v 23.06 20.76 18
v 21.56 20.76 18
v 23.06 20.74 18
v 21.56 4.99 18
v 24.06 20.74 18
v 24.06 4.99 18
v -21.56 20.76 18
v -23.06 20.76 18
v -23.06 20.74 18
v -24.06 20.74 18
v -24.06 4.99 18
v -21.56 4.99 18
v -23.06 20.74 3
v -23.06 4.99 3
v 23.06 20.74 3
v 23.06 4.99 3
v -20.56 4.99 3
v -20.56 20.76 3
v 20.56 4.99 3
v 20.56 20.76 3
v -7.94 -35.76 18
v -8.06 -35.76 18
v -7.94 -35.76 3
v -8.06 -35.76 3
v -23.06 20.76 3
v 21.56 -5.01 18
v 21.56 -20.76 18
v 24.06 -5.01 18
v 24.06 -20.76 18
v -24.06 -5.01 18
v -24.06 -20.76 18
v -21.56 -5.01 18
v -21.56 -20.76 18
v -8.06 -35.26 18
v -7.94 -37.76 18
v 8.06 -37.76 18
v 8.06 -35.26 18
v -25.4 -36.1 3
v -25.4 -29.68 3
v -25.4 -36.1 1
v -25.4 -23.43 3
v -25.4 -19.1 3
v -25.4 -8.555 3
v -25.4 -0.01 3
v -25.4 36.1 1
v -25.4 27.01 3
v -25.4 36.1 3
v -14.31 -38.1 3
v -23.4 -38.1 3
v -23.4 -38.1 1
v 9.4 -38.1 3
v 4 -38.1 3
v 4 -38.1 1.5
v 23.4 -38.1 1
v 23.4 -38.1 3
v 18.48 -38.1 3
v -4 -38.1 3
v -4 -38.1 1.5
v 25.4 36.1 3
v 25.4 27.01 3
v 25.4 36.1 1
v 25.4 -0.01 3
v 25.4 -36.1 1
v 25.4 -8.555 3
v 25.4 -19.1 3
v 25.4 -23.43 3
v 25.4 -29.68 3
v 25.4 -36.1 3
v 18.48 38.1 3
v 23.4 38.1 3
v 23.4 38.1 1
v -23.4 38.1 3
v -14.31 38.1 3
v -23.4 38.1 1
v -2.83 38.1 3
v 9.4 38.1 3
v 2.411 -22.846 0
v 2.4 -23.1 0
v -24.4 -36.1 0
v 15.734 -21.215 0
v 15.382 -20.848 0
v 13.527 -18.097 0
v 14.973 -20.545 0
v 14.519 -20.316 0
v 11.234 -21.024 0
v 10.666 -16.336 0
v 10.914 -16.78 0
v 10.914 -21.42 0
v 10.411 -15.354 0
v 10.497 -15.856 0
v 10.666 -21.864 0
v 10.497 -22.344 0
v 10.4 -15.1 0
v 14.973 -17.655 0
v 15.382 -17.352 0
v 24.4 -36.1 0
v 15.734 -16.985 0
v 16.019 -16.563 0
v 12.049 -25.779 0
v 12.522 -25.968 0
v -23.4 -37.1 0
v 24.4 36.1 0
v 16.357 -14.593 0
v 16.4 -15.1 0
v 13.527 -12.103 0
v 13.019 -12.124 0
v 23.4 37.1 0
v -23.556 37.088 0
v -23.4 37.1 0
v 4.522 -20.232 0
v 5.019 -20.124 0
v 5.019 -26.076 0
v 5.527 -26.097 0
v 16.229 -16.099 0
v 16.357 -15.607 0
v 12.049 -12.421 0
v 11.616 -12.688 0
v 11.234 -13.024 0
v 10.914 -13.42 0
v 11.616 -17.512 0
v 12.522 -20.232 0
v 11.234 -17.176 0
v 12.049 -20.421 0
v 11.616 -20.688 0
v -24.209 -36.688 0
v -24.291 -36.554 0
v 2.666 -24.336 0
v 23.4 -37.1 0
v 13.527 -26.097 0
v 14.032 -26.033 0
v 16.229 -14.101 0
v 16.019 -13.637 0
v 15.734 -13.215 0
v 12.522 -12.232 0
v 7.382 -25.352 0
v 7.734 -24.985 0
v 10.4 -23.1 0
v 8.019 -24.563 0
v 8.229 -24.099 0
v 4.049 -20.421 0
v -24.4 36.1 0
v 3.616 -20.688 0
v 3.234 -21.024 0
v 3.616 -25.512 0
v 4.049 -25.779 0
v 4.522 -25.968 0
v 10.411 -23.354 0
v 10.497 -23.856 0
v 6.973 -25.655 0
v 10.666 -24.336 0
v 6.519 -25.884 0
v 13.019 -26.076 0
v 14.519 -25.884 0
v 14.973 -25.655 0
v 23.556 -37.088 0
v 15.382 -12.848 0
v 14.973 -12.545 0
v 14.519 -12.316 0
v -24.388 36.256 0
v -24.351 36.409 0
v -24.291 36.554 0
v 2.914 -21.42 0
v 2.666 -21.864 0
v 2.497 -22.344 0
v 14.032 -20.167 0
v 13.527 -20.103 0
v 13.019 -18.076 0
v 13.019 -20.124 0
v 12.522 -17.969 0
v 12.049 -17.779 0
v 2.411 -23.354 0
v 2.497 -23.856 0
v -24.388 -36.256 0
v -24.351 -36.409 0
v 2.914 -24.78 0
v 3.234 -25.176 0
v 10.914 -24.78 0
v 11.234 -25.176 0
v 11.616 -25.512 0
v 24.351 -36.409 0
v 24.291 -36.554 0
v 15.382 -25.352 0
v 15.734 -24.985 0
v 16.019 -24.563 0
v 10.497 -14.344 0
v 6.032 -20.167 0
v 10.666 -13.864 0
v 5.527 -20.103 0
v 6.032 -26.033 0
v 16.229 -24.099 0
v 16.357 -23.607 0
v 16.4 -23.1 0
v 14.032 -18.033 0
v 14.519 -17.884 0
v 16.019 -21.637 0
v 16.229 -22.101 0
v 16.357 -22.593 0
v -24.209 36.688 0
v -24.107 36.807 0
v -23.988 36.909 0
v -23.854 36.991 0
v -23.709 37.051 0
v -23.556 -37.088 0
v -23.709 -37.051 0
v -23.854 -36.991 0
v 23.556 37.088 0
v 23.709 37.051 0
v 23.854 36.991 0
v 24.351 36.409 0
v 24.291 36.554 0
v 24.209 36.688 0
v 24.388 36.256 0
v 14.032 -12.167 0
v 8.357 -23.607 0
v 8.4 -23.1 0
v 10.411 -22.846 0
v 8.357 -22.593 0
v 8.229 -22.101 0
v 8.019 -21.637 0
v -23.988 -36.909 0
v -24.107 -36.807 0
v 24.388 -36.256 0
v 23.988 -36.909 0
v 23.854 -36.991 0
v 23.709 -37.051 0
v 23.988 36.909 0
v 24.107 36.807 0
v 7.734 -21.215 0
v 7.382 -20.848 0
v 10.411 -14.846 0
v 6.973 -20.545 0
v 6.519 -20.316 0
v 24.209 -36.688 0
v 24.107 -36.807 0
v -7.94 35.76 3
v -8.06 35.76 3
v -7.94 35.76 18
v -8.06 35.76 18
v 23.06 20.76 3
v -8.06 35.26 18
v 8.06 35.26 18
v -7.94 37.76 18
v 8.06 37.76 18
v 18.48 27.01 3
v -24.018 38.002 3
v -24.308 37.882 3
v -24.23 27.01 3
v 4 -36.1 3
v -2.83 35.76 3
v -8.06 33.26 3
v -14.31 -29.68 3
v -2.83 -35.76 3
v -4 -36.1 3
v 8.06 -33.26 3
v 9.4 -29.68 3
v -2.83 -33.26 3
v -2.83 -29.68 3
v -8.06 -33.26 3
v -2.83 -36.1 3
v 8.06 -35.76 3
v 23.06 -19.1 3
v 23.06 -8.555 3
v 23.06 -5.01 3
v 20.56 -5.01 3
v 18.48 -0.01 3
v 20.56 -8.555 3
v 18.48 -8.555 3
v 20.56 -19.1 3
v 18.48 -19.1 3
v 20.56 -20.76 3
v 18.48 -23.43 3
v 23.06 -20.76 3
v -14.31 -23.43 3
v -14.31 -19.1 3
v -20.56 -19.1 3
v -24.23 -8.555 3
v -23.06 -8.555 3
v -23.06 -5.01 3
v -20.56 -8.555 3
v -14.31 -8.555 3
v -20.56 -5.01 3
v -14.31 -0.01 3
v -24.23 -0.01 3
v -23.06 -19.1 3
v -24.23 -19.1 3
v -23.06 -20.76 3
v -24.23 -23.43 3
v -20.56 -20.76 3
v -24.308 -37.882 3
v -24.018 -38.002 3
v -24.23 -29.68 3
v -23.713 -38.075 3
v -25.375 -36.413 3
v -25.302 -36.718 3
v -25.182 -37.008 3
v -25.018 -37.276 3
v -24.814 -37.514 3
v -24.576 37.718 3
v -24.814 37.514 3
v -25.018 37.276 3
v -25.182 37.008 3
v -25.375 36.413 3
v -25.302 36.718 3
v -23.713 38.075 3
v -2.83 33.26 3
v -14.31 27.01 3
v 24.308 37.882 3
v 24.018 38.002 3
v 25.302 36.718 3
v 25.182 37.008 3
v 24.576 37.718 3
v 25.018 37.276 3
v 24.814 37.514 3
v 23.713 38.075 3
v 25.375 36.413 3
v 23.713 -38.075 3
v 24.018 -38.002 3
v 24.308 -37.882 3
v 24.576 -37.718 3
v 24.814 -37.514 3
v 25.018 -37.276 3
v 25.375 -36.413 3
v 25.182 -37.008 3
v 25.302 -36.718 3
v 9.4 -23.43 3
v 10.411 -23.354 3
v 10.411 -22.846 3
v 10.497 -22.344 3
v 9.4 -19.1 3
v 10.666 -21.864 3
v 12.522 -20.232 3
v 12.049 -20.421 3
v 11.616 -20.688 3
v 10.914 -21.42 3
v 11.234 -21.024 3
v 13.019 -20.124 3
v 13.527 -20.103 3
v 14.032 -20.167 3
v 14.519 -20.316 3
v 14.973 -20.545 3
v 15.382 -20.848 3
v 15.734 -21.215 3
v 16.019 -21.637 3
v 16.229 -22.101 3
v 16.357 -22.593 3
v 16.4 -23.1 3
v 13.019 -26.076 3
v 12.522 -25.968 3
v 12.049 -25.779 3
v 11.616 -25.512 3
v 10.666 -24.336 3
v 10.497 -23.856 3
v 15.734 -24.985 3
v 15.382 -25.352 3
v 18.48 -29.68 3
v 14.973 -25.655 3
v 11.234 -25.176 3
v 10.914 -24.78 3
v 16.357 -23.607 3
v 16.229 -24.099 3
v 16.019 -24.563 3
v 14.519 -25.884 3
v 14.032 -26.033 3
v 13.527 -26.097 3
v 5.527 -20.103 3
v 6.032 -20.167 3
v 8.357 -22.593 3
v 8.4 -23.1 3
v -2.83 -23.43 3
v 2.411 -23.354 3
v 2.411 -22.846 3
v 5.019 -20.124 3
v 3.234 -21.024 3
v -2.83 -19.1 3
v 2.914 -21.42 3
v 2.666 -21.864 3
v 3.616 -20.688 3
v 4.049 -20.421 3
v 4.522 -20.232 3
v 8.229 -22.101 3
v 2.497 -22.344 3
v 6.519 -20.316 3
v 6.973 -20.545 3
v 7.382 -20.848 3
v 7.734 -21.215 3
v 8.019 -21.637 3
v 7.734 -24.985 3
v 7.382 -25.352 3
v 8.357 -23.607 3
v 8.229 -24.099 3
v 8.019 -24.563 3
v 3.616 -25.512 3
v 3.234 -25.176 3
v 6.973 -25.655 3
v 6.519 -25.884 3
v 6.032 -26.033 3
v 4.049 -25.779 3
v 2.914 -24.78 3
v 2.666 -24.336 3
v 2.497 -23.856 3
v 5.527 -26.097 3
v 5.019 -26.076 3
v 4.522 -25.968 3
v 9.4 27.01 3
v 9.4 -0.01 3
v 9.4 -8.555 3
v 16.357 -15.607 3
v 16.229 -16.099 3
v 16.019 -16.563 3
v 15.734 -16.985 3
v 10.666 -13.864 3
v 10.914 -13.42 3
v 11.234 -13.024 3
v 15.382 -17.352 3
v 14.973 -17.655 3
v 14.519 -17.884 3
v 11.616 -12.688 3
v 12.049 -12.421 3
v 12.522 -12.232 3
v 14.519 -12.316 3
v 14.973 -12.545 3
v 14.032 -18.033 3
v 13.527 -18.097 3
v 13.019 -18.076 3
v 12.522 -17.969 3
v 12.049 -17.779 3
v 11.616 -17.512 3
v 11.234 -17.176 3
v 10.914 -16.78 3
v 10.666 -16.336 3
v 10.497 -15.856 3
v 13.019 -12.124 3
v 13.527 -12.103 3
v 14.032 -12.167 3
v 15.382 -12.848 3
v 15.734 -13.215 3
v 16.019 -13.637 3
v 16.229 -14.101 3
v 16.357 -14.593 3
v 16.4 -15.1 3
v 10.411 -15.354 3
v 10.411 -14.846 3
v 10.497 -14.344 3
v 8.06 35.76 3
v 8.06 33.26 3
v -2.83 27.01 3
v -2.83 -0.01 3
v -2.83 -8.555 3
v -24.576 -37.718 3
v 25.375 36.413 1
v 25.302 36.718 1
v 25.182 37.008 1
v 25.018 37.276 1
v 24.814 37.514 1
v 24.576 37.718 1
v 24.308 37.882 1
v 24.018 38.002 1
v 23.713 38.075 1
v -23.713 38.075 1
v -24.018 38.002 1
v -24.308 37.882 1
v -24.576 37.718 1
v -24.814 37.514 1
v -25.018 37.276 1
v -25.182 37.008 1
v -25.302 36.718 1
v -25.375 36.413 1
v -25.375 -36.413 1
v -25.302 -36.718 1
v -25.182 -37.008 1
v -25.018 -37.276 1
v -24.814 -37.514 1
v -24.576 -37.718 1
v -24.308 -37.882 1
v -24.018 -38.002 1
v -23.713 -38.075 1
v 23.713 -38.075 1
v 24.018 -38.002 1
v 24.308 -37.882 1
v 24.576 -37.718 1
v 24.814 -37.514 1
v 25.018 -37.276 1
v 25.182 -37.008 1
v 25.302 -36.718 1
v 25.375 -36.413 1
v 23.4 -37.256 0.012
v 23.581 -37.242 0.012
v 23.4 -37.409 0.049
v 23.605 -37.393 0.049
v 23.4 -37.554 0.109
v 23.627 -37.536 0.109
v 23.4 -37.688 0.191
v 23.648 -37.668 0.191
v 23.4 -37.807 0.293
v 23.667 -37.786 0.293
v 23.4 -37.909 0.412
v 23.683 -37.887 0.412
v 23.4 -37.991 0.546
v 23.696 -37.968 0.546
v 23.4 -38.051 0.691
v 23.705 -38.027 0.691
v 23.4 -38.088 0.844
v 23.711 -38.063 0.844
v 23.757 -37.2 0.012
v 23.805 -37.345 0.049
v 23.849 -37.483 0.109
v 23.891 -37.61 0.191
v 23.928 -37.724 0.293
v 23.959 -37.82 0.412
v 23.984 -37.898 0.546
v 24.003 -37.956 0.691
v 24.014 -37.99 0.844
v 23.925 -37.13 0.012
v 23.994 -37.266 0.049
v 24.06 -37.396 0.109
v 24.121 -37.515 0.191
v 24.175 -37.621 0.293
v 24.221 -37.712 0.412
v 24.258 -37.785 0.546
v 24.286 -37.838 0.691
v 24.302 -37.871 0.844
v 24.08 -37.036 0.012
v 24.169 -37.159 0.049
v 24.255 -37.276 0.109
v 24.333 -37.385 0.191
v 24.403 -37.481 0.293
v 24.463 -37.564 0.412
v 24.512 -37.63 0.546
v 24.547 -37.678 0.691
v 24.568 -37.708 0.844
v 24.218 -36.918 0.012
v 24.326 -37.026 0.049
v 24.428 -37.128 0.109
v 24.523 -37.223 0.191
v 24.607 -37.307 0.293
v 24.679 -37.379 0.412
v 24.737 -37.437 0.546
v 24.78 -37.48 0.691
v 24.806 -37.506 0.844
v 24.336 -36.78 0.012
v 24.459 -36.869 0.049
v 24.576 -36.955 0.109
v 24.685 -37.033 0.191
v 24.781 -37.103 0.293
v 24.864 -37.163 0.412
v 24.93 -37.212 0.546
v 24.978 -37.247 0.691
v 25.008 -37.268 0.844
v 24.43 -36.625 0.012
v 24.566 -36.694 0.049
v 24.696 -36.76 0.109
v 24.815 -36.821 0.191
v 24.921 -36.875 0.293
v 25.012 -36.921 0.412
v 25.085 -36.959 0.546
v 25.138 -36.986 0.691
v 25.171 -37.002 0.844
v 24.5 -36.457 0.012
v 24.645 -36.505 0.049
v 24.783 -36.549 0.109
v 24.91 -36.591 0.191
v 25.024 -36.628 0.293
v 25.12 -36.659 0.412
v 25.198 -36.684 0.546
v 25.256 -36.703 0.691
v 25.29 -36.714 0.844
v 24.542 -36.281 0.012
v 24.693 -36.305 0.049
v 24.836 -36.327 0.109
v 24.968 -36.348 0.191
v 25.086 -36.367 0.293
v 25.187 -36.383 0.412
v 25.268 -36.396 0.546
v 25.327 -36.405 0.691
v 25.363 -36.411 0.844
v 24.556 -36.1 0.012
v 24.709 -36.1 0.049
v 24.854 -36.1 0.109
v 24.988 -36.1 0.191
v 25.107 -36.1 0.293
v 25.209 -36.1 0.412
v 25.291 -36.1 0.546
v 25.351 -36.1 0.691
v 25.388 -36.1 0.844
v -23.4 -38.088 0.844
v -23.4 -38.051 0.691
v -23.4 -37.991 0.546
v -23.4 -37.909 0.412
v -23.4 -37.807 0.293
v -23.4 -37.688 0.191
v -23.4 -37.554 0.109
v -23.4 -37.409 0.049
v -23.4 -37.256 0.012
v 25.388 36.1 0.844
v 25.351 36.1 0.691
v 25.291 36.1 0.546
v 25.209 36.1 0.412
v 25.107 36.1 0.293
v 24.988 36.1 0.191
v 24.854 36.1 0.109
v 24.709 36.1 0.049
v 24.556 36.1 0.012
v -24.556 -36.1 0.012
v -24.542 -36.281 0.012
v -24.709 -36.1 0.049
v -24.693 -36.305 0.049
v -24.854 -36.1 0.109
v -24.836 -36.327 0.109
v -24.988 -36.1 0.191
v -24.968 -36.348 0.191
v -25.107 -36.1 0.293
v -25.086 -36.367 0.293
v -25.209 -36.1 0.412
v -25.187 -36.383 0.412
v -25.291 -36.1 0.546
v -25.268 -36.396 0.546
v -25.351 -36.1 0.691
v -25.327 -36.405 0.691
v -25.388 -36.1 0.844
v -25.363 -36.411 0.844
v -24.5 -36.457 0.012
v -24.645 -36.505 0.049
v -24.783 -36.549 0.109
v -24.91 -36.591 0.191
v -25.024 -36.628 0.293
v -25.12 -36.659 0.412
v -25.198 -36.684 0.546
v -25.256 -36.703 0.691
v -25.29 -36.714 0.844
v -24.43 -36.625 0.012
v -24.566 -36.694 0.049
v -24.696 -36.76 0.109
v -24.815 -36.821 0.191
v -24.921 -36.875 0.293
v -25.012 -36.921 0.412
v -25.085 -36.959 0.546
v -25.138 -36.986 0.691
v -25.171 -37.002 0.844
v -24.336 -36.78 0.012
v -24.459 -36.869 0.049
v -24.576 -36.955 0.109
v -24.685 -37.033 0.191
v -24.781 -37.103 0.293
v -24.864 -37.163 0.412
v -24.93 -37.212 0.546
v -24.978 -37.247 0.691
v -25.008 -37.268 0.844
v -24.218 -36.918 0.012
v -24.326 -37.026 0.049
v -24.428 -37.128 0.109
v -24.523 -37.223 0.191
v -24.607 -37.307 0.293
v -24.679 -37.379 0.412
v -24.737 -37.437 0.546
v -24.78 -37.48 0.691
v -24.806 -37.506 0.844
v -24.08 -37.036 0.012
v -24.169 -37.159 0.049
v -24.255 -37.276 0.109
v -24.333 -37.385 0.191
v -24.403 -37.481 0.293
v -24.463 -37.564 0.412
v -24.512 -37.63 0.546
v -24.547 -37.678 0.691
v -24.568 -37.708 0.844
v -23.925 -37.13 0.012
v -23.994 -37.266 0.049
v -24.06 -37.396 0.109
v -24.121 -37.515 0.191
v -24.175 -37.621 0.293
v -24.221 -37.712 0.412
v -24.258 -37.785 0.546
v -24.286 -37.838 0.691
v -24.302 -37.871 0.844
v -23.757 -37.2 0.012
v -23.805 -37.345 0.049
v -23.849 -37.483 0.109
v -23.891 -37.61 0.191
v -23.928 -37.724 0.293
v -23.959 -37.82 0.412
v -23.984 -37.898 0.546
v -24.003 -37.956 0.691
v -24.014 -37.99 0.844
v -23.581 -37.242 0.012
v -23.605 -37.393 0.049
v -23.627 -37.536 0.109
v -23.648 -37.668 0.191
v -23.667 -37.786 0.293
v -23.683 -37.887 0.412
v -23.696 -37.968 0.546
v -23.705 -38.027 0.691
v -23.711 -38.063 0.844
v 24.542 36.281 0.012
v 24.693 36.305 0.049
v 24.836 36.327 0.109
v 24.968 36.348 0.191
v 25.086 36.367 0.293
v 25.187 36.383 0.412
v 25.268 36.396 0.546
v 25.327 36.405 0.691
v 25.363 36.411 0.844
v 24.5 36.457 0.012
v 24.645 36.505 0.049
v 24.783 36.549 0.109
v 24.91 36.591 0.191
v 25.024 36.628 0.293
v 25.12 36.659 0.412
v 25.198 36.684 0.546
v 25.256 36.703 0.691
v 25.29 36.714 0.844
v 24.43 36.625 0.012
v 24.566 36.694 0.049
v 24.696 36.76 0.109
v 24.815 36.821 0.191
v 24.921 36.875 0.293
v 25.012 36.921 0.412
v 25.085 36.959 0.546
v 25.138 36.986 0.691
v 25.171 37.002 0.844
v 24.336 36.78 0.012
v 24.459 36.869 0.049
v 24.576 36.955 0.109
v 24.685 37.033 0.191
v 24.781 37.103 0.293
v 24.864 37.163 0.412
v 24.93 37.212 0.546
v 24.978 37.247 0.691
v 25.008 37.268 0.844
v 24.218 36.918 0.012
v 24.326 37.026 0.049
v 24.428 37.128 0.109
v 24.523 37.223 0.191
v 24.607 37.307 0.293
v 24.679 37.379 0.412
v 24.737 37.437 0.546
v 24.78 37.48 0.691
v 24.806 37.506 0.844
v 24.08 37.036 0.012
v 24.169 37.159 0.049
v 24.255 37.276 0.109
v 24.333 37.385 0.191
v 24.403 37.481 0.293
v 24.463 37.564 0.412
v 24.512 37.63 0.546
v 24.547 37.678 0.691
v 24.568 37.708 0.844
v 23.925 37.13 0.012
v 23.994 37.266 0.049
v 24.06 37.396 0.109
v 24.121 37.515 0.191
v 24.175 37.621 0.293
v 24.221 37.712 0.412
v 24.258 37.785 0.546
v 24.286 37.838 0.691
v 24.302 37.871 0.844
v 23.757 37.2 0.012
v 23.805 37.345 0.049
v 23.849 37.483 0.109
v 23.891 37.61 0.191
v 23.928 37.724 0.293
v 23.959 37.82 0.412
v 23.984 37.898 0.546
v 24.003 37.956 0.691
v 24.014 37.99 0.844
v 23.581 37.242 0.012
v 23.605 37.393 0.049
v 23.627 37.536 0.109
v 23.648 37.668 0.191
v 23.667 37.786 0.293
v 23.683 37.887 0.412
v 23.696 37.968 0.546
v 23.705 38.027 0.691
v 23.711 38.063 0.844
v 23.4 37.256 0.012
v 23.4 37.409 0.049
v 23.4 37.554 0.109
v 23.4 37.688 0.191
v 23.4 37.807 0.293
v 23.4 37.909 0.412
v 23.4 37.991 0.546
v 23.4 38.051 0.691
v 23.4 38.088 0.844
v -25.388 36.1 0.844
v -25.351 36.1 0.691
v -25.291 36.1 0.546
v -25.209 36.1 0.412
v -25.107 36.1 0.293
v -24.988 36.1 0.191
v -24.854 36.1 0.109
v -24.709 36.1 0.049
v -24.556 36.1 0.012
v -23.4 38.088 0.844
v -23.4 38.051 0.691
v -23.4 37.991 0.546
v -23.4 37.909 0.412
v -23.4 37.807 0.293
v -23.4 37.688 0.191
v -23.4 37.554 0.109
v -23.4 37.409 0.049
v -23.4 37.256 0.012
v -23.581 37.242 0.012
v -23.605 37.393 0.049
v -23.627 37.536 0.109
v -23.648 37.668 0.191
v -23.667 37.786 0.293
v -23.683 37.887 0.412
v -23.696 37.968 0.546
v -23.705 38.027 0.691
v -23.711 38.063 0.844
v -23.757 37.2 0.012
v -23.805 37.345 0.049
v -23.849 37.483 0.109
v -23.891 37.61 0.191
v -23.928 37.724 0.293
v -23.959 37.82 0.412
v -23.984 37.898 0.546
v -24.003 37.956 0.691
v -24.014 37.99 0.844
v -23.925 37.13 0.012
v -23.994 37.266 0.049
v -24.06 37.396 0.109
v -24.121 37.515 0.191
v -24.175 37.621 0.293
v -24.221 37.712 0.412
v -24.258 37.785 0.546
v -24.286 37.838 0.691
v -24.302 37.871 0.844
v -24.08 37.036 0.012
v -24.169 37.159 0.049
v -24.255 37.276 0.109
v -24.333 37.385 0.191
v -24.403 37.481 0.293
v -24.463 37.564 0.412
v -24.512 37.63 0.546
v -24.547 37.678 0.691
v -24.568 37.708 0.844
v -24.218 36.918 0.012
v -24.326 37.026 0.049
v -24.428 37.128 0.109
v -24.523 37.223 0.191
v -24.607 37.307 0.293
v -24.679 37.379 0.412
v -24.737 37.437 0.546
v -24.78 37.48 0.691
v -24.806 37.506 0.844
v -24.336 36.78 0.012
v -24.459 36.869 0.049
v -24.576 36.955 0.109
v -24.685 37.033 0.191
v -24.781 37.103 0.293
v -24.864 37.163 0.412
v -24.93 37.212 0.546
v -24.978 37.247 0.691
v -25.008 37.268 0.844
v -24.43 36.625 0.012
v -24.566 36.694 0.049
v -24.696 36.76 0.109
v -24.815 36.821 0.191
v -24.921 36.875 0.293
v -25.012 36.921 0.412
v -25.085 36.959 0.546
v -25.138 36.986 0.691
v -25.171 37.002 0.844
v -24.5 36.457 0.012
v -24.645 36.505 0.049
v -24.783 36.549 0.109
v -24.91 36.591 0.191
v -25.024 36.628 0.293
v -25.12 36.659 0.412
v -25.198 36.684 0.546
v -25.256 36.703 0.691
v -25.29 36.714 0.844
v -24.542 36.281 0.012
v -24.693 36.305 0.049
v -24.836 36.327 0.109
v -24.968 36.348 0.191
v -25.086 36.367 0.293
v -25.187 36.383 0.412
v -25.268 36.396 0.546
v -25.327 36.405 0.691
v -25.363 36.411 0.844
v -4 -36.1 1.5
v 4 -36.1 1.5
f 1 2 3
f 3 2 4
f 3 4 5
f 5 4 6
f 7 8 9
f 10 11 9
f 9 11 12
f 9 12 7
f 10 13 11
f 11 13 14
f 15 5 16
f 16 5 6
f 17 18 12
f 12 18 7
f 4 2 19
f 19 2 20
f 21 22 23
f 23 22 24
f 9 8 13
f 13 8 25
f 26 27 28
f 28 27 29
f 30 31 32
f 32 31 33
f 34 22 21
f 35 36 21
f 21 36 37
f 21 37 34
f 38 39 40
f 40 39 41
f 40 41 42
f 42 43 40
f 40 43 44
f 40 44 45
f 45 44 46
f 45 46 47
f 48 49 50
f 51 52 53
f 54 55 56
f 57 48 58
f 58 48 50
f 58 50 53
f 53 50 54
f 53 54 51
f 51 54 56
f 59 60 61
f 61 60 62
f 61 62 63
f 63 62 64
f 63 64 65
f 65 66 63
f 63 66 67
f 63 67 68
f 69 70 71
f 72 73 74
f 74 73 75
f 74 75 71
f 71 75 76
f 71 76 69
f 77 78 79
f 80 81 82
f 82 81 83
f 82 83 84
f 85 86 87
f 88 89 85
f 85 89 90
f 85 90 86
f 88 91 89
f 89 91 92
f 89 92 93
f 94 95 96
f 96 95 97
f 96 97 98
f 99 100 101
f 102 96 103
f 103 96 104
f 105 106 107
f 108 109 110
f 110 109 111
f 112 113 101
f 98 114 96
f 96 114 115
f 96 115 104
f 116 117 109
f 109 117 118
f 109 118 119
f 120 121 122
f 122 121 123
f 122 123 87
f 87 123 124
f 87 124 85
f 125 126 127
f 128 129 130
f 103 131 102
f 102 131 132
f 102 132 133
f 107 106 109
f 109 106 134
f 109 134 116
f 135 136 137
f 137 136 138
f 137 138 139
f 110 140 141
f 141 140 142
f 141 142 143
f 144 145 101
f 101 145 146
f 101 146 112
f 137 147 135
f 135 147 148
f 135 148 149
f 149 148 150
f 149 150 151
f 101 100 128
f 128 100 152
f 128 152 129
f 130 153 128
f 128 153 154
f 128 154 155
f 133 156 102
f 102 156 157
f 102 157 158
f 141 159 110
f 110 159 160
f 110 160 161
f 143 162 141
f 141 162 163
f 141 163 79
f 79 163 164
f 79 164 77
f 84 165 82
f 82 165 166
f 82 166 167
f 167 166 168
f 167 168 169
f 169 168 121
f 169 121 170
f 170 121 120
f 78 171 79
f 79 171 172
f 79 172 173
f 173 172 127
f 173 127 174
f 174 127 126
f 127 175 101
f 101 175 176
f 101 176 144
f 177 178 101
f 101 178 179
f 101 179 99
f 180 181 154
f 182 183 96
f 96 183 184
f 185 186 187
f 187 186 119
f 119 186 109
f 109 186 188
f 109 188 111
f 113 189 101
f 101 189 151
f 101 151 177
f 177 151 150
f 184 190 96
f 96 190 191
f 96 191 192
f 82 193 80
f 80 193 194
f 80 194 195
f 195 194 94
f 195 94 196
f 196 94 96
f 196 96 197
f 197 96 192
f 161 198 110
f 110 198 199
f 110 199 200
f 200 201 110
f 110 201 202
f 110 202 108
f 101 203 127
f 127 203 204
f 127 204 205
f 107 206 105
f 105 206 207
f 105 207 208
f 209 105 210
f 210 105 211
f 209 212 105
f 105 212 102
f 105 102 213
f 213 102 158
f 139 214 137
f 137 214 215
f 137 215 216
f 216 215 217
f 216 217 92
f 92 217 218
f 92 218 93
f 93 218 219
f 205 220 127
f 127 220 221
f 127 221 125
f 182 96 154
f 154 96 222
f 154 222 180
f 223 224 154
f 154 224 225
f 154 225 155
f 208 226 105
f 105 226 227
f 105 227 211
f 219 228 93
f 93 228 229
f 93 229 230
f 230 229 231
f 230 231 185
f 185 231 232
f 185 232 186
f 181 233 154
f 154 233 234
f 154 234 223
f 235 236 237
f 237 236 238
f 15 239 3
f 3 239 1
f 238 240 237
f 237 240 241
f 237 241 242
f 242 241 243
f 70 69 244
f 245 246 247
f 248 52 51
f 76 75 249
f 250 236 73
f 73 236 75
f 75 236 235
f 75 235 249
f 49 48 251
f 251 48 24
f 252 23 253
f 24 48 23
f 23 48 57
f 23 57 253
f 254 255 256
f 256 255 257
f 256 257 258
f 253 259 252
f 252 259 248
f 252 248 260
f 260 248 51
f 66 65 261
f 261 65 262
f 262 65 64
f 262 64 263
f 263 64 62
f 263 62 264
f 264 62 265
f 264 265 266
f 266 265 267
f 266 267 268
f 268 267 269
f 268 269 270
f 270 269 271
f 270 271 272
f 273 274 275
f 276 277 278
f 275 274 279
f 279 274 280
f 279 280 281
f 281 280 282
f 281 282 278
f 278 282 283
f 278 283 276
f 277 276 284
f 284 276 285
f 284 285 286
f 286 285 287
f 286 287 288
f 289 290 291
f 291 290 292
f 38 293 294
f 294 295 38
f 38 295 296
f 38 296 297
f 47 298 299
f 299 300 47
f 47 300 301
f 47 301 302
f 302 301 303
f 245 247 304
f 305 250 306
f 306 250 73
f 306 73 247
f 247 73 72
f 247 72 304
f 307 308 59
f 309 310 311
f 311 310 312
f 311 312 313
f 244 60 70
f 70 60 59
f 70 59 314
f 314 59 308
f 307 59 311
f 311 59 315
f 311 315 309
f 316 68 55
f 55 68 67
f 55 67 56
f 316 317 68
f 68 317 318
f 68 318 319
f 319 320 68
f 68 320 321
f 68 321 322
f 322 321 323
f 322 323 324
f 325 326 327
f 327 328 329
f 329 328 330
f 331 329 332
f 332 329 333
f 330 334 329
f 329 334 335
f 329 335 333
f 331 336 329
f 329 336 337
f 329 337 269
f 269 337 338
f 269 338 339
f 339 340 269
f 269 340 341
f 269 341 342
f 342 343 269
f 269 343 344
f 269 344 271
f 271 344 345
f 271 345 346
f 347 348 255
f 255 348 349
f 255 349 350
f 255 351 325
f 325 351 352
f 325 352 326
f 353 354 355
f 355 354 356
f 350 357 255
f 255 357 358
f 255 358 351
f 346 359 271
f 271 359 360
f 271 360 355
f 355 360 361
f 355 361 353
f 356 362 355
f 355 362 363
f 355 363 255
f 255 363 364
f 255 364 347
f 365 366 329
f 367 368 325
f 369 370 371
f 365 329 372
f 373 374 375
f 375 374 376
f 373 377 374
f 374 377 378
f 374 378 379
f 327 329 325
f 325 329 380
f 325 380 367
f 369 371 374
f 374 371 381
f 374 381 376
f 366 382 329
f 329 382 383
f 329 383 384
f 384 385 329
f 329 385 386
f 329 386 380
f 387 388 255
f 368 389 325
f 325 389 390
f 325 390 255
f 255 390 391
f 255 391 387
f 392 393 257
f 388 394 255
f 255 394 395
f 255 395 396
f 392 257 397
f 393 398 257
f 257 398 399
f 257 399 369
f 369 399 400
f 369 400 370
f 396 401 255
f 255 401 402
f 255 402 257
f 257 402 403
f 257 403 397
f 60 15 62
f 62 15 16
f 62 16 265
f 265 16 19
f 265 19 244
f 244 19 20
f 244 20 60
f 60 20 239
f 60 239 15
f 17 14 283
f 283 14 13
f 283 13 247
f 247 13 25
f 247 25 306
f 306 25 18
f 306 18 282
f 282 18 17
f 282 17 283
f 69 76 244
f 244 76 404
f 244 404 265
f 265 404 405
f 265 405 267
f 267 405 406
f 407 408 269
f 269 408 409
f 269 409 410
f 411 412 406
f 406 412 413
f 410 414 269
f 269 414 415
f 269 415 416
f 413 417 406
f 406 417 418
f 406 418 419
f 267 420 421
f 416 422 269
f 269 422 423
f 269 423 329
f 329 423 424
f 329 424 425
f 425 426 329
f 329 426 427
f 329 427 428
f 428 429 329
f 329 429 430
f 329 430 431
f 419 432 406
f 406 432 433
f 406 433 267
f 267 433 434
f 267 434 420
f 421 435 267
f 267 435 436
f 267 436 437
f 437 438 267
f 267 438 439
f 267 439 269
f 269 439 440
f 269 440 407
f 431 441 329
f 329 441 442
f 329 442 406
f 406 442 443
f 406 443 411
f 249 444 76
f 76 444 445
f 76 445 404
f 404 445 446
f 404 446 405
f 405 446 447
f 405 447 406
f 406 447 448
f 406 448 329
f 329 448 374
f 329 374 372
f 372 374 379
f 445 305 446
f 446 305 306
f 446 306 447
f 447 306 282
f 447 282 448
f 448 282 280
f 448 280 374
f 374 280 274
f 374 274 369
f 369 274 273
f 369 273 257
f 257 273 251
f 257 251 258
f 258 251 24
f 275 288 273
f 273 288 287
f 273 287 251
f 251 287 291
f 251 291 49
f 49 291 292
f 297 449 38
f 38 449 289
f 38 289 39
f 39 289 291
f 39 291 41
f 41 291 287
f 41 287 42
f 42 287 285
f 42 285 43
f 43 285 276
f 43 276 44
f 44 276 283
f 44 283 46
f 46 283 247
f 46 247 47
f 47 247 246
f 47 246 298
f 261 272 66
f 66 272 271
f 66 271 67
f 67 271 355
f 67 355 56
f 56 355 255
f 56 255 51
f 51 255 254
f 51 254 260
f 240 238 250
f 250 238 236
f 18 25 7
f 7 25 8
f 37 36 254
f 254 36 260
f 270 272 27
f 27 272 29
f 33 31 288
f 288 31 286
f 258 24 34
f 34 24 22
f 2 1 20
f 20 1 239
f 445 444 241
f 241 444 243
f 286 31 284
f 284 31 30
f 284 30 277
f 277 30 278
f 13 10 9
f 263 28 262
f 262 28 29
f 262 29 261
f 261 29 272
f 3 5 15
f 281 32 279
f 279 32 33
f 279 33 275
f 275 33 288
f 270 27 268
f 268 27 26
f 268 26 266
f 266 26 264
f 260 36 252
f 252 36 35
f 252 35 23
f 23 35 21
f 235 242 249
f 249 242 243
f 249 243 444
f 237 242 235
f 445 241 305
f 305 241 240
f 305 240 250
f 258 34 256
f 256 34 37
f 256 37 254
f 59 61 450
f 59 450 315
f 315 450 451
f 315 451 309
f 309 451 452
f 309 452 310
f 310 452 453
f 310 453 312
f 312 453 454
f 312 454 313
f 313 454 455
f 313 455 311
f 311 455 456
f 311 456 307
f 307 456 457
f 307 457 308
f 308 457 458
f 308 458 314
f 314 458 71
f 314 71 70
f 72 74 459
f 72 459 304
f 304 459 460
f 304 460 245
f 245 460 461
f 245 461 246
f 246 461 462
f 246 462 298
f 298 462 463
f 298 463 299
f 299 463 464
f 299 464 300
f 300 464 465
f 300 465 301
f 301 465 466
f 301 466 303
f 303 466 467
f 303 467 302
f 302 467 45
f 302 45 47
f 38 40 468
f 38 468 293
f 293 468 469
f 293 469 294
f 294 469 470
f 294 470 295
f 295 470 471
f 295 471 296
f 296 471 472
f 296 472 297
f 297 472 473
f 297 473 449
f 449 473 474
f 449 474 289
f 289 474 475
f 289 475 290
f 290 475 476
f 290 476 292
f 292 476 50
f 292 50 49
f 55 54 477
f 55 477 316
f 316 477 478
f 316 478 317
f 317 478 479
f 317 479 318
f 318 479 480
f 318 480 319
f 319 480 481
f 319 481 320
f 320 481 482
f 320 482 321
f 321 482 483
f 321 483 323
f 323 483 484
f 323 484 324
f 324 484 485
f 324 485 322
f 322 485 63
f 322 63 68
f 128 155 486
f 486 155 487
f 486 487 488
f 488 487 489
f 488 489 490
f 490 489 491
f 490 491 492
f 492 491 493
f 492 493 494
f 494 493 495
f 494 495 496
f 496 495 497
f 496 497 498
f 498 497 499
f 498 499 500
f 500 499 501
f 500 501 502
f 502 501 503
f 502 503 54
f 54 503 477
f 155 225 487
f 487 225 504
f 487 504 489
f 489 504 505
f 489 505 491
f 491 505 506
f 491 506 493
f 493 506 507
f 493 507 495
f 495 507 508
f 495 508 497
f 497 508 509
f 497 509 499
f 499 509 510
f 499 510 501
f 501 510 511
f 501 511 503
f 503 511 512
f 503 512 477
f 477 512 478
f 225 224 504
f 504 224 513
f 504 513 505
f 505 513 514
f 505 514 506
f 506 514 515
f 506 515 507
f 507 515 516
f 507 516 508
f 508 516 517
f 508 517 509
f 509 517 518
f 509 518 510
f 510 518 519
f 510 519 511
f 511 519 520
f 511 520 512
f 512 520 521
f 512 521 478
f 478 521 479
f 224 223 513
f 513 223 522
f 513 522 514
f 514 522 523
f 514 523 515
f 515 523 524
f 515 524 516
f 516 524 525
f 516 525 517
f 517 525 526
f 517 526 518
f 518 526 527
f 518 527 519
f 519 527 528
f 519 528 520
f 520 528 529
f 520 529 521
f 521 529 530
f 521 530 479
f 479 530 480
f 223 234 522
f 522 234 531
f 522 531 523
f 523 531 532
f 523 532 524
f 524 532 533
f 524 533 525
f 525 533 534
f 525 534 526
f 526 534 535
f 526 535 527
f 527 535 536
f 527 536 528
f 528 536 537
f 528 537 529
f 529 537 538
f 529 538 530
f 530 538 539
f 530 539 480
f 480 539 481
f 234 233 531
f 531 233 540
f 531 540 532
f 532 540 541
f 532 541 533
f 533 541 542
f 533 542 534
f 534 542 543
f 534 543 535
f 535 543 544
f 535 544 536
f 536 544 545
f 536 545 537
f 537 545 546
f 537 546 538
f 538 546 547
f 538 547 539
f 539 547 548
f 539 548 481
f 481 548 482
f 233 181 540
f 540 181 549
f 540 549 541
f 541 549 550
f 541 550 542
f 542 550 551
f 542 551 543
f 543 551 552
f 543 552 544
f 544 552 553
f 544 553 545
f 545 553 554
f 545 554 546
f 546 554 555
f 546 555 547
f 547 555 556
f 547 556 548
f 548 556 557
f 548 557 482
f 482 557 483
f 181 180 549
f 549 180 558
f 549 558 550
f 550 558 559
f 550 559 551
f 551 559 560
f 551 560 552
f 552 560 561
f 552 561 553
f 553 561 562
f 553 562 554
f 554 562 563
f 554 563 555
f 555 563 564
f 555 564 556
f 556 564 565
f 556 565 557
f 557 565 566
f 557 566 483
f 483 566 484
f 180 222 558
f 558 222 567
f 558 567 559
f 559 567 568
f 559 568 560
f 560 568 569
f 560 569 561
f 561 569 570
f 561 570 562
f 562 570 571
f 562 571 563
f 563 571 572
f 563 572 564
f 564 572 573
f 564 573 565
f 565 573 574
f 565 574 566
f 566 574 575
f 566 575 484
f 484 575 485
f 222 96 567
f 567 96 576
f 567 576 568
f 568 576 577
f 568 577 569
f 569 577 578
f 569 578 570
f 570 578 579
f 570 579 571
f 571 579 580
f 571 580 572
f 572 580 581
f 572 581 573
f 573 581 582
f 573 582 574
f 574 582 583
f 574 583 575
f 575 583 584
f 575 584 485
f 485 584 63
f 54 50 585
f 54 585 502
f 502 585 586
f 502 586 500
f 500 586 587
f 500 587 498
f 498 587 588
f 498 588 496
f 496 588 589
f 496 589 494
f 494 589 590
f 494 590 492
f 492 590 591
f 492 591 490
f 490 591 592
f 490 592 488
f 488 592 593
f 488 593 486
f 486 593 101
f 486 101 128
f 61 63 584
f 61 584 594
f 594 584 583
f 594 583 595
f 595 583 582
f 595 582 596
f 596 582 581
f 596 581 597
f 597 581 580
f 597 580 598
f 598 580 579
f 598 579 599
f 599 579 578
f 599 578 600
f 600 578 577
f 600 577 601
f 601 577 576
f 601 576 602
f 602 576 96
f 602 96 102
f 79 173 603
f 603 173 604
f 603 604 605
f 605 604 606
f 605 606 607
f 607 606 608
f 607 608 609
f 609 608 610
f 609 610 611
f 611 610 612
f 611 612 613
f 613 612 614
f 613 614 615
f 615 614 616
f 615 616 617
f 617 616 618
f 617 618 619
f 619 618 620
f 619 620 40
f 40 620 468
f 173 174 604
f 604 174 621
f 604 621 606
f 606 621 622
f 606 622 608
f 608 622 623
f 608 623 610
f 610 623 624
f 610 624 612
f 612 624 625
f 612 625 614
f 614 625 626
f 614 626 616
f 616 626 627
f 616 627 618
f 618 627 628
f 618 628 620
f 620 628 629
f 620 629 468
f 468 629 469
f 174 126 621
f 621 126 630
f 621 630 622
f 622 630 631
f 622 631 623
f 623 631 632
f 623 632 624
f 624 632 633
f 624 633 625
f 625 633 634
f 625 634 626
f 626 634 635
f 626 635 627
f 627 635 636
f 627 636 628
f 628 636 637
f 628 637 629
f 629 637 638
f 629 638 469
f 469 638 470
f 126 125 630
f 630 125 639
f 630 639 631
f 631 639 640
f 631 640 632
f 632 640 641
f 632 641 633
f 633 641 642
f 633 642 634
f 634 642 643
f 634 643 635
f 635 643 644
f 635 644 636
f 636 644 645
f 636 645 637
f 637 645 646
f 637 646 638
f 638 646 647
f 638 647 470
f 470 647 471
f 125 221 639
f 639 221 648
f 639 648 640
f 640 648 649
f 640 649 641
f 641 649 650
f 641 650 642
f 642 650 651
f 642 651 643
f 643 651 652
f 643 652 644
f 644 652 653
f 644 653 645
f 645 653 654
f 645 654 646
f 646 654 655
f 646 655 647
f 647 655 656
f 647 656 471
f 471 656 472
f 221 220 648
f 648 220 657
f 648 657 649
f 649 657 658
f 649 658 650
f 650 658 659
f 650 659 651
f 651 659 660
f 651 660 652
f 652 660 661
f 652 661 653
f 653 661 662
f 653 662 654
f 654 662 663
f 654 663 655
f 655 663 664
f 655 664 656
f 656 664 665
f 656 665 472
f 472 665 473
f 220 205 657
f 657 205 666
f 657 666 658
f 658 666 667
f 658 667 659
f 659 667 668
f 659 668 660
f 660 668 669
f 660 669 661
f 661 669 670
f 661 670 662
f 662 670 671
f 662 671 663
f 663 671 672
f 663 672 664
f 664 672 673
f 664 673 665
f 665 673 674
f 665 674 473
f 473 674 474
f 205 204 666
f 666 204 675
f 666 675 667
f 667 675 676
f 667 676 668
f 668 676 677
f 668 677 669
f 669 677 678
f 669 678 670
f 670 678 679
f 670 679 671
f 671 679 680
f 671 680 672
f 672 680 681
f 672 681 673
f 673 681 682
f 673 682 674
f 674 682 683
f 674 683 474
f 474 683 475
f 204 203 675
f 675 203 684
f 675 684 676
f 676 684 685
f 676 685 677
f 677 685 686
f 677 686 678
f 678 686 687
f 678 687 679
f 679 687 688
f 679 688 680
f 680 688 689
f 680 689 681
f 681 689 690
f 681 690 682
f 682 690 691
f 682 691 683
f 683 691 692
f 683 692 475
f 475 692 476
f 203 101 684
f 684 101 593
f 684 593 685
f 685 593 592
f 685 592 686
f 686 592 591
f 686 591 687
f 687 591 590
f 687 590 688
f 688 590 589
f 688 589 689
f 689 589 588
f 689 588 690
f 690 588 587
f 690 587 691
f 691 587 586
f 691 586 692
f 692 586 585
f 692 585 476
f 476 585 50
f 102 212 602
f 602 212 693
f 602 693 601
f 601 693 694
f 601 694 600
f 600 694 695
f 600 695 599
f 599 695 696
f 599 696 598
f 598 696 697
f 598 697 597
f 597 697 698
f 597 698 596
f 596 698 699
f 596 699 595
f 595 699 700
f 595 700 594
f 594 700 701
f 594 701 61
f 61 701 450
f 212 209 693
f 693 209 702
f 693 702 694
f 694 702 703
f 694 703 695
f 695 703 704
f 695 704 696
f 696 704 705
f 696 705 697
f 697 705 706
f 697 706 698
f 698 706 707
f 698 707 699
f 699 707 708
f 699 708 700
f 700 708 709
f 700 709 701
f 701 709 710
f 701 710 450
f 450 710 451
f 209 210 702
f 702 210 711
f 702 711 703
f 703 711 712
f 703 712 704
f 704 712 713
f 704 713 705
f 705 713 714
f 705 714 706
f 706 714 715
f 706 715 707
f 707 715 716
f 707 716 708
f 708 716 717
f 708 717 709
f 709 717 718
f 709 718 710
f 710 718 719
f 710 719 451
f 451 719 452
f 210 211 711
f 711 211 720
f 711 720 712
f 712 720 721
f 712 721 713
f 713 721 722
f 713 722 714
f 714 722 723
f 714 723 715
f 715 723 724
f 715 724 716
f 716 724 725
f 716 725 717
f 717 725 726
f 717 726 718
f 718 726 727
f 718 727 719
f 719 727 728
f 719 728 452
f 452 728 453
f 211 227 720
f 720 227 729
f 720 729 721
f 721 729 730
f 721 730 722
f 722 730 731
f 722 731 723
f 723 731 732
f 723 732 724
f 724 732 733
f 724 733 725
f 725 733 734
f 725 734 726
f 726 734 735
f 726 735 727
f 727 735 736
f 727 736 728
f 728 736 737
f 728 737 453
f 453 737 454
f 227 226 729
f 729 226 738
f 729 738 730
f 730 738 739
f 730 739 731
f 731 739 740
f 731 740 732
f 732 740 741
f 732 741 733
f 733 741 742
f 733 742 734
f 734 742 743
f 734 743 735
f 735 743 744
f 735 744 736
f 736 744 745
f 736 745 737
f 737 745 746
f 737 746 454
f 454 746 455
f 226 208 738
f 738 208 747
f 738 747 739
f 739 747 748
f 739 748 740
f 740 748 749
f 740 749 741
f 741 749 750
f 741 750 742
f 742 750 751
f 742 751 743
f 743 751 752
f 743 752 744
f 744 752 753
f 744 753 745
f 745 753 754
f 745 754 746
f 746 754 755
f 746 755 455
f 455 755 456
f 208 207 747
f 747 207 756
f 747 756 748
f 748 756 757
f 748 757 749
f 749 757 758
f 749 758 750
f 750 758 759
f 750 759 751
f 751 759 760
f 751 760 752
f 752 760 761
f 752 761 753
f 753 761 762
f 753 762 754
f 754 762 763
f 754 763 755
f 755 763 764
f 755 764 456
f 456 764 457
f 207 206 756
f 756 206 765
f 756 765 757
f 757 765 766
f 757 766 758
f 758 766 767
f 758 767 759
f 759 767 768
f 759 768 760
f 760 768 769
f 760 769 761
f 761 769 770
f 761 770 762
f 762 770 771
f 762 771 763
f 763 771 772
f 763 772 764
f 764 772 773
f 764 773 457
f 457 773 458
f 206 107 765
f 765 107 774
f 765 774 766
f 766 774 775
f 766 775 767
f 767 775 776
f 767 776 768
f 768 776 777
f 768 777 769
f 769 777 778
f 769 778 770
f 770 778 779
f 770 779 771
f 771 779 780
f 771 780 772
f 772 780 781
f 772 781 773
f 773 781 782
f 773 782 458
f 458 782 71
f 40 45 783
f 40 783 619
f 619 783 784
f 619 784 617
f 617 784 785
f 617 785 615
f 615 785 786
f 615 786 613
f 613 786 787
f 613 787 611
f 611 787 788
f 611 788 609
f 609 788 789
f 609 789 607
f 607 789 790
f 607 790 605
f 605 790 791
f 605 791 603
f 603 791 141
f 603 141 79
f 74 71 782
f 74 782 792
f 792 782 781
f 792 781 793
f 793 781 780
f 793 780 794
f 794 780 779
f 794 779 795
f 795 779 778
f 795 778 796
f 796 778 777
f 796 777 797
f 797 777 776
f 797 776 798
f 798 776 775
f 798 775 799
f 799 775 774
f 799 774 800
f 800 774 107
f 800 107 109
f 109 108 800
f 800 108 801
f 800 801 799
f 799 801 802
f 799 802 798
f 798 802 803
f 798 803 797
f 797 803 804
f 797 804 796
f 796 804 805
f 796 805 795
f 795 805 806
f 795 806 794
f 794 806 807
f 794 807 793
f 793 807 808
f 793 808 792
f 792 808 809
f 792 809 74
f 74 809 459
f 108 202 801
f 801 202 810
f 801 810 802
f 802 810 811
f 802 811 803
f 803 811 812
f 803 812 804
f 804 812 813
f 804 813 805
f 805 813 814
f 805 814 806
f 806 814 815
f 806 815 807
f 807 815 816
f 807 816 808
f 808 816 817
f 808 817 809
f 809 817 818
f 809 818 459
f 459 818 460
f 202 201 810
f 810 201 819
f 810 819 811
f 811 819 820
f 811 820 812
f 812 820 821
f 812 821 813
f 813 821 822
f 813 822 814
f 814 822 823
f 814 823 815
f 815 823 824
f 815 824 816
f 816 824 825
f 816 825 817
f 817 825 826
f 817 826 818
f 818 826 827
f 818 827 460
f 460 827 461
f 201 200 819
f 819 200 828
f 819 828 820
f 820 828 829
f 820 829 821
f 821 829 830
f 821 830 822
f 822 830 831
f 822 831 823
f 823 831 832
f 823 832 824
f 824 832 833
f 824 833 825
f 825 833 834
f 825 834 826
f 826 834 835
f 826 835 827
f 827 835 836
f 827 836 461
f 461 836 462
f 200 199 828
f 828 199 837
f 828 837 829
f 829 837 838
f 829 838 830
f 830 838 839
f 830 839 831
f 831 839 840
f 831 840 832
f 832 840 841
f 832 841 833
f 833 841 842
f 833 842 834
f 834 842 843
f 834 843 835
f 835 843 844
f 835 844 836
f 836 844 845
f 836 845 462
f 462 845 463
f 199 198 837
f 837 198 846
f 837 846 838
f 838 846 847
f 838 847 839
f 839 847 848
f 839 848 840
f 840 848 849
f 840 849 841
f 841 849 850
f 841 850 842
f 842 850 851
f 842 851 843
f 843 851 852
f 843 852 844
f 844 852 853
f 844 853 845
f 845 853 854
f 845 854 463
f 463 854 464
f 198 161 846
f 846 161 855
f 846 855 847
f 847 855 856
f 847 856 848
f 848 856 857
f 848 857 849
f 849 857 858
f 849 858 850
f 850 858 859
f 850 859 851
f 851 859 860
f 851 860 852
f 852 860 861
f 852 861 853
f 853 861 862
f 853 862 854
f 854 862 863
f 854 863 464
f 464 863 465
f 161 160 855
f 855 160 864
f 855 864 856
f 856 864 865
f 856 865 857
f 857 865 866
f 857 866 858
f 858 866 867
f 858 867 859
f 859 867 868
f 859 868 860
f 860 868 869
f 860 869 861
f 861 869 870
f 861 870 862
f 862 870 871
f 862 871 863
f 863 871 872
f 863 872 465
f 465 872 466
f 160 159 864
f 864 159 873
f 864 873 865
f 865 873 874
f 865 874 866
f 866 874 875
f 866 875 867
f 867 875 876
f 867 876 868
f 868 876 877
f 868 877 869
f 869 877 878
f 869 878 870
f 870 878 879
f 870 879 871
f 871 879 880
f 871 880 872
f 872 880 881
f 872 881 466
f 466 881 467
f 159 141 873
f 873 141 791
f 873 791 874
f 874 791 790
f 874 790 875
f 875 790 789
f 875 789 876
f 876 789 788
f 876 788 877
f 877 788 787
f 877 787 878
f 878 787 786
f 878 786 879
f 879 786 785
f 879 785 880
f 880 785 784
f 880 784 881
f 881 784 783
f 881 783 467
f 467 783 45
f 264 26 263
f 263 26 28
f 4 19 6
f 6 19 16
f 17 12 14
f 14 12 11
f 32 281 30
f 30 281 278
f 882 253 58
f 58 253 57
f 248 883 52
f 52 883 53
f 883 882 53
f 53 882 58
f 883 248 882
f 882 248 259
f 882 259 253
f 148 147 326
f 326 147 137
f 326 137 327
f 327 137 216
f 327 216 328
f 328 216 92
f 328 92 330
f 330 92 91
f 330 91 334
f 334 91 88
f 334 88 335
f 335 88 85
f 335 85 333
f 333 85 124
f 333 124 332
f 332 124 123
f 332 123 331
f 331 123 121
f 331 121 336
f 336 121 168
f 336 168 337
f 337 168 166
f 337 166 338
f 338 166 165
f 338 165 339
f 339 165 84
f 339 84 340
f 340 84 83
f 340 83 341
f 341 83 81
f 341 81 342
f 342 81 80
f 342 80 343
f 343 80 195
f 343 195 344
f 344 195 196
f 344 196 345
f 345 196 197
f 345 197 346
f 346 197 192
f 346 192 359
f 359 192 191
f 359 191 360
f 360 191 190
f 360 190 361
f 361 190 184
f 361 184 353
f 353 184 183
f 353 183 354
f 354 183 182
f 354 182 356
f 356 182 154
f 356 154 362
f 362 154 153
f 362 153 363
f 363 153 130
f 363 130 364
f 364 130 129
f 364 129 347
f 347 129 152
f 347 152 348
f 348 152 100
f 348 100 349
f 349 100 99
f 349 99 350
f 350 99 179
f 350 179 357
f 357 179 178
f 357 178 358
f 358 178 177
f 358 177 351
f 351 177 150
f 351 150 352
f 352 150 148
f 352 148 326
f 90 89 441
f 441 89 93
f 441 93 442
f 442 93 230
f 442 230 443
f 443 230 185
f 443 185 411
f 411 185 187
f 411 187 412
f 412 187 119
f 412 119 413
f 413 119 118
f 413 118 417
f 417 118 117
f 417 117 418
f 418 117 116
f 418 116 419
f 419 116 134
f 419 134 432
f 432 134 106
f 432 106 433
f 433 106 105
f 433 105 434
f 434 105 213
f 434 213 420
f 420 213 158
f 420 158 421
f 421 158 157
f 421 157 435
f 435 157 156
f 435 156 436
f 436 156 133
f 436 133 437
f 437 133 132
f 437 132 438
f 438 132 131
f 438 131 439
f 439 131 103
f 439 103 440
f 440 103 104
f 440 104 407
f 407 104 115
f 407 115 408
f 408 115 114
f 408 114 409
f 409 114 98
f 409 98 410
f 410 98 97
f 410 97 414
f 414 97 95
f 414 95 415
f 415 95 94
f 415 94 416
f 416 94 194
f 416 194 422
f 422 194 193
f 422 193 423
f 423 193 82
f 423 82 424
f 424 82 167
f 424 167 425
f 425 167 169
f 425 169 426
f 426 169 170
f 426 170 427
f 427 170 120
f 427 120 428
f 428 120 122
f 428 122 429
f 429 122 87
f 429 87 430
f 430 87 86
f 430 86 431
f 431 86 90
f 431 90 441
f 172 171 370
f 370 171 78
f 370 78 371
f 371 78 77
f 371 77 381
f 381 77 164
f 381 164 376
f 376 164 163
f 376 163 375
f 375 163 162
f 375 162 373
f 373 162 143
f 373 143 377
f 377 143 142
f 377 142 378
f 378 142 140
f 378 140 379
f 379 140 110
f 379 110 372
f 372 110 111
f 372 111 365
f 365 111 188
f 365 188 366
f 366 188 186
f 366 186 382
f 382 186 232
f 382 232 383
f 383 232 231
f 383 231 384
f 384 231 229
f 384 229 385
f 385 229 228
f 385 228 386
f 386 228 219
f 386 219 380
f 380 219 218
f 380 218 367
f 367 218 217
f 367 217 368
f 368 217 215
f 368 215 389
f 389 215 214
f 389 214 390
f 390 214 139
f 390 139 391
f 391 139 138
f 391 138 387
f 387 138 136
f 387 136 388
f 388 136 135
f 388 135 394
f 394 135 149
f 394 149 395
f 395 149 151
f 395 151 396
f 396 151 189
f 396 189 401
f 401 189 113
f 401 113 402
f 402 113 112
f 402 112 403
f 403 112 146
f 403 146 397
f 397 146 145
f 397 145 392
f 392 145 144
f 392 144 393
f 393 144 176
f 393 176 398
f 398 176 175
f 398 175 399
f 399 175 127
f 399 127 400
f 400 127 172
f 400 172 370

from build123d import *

# Parameters (mm, degrees)
CROQUIS1_W              = 50.8
CROQUIS1_H              = 76.2
SALIENTE_EXTRUIR1_DEPTH = 18
CROQUIS2_W              = 50.8
CROQUIS2_H              = 76.2
CROQUIS2_W_2            = 46.12
CROQUIS2_H_2            = 71.52
CROQUIS2_W_3            = 38.8
CROQUIS2_H_3            = 64.2
CORTAR_EXTRUIR1_DEPTH   = 15
CORTAR_EXTRUIR8_DEPTH   = 15
SALIENTE_EXTRUIR3_DEPTH = 41.5
CORTAR_EXTRUIR9_DEPTH   = 51.5
CORTAR_EXTRUIR10_DEPTH  = 51.5
SALIENTE_EXTRUIR4_DEPTH = 16
CORTAR_EXTRUIR11_DEPTH  = 16.5
REDONDEO3_R             = 2
REDONDEO4_R             = 1
CROQUIS15_W             = 48.12
CROQUIS15_H             = 10
CORTAR_EXTRUIR12_DEPTH  = 15
CROQUIS16_W             = 8
CROQUIS16_H             = 1.5
CORTAR_EXTRUIR13_DEPTH  = 2
CROQUIS17_R             = 3
CORTAR_EXTRUIR14_DEPTH  = 10


with BuildPart() as part:
    # Croquis1 → Saliente-Extruir1 (new body)
    with BuildSketch(Plane.XY):
        Rectangle(CROQUIS1_W, CROQUIS1_H)
    extrude(amount=SALIENTE_EXTRUIR1_DEPTH)

    # Croquis2 → Cortar-Extruir1 (cut)
    # profile 1 of 2: a face of its own
    with BuildSketch(Plane.XY.offset(18)):
        Rectangle(CROQUIS2_W, CROQUIS2_H)
        Rectangle(CROQUIS2_W_2, CROQUIS2_H_2, mode=Mode.SUBTRACT)
    # profile 2 of 2: a face of its own
    with BuildSketch(Plane.XY.offset(18)):
        Rectangle(CROQUIS2_W_3, CROQUIS2_H_3)
    extrude(amount=-CORTAR_EXTRUIR1_DEPTH, mode=Mode.SUBTRACT)

    # Croquis6 → Cortar-Extruir8 (cut)
    with BuildSketch(Plane.XY.offset(18)):
        Polygon((-23.06, 35.76), (-8.06, 35.76), (-8.06, 32.1), (-19.4, 32.1), (-19.4, 20.76), (-23.06, 20.76), align=None)
        Polygon((23.06, 35.76), (8.06, 35.76), (8.06, 32.1), (19.4, 32.1), (19.4, 20.76), (23.06, 20.76), align=None)
        Polygon((-23.06, -35.76), (-23.06, -20.76), (-19.4, -20.76), (-19.4, -32.1), (-8.06, -32.1), (-8.06, -35.76), align=None)
        Polygon((23.06, -35.76), (8.06, -35.76), (8.06, -32.1), (19.4, -32.1), (19.4, -20.76), (23.06, -20.76), align=None)
    extrude(amount=-CORTAR_EXTRUIR8_DEPTH, mode=Mode.SUBTRACT)

    # Croquis10 → Saliente-Extruir3 (add)
    with BuildSketch(Plane(origin=(0, -20.76, 0), x_dir=(-1, 0, 0), z_dir=(0, -1, 0))):
        Polygon((23.06, -18), (24.06, -18), (23.06, -3), align=None)
        Polygon((-23.06, -18), (-24.06, -18), (-23.06, -3), align=None)
    extrude(amount=-SALIENTE_EXTRUIR3_DEPTH)

    # Croquis11 → Cortar-Extruir9 (cut)
    with BuildSketch(Plane.XZ.offset(20.76)):
        Polygon((-19.4, 18), (-21.56, 18), (-20.56, 3), (-19.4, 3), align=None)
    extrude(amount=-CORTAR_EXTRUIR9_DEPTH, mode=Mode.SUBTRACT)

    # Croquis12 → Cortar-Extruir10 (cut)
    with BuildSketch(Plane.XZ.offset(20.76)):
        Polygon((19.4, 18), (19.4, 3), (20.56, 3), (21.56, 18), align=None)
    extrude(amount=-CORTAR_EXTRUIR10_DEPTH, mode=Mode.SUBTRACT)

    # Croquis13 → Saliente-Extruir4 (add)
    with BuildSketch(Plane(origin=(8.06, 0, 0), x_dir=(0, 0, -1), z_dir=(1, 0, 0))):
        Polygon((-18, -35.76), (-18, -37.76), (-3, -35.76), align=None)
        Polygon((-18, 35.76), (-18, 37.76), (-3, 35.76), align=None)
    extrude(amount=-SALIENTE_EXTRUIR4_DEPTH)

    # Croquis14 → Cortar-Extruir11 (cut)
    with BuildSketch(Plane(origin=(8.06, 0, 0), x_dir=(0, 0, -1), z_dir=(1, 0, 0))):
        Polygon((-3, -32.1), (-18, -32.1), (-18, -35.26), (-3, -33.26), align=None)
        Polygon((-18, 32.1), (-18, 35.26), (-3, 33.26), (-3, 32.1), align=None)
    extrude(amount=-CORTAR_EXTRUIR11_DEPTH, mode=Mode.SUBTRACT)

    # Redondeo3
    redondeo3_edges = [part.edges().sort_by_distance(p)[0] for p in [
        (-25.4, 38.1, 1.5),
        (25.4, 38.1, 1.5),
        (25.4, -38.1, 1.5),
        (-25.4, -38.1, 1.5),
    ]]
    fillet(redondeo3_edges, radius=REDONDEO3_R)

    # Redondeo4
    redondeo4_edges = [part.edges().sort_by_distance(p)[0] for p in [
        (0, 38.1, 0),
        (-25.4, 0, 0),
        (25.4, 0, 0),
        (0, -38.1, 0),
        (24.814213562, -37.514213562, 0),
        (-24.814213562, -37.514213562, 0),
        (-24.814213562, 37.514213562, 0),
        (24.814213562, 37.514213562, 0),
    ]]
    fillet(redondeo4_edges, radius=REDONDEO4_R)

    # Croquis15 → Cortar-Extruir12 (cut)
    with BuildSketch(Plane.XY.offset(18)):
        with Locations((0, -0.01)):
            Rectangle(CROQUIS15_W, CROQUIS15_H)
    extrude(amount=-CORTAR_EXTRUIR12_DEPTH, mode=Mode.SUBTRACT)

    # Croquis16 → Cortar-Extruir13 (cut)
    with BuildSketch(Plane.XZ.offset(38.1)):
        with Locations((0, 2.25)):
            Rectangle(CROQUIS16_W, CROQUIS16_H)
    extrude(amount=-CORTAR_EXTRUIR13_DEPTH, mode=Mode.SUBTRACT)

    # Croquis17 → Cortar-Extruir14 (cut)
    with BuildSketch(Plane.XY.offset(3)):
        with Locations((13.4, -23.1)):
            Circle(CROQUIS17_R)
        with Locations((13.4, -15.1)):
            Circle(CROQUIS17_R)
        with Locations((5.4, -23.1)):
            Circle(CROQUIS17_R)
    extrude(amount=-CORTAR_EXTRUIR14_DEPTH, mode=Mode.SUBTRACT)


solid = part.part
